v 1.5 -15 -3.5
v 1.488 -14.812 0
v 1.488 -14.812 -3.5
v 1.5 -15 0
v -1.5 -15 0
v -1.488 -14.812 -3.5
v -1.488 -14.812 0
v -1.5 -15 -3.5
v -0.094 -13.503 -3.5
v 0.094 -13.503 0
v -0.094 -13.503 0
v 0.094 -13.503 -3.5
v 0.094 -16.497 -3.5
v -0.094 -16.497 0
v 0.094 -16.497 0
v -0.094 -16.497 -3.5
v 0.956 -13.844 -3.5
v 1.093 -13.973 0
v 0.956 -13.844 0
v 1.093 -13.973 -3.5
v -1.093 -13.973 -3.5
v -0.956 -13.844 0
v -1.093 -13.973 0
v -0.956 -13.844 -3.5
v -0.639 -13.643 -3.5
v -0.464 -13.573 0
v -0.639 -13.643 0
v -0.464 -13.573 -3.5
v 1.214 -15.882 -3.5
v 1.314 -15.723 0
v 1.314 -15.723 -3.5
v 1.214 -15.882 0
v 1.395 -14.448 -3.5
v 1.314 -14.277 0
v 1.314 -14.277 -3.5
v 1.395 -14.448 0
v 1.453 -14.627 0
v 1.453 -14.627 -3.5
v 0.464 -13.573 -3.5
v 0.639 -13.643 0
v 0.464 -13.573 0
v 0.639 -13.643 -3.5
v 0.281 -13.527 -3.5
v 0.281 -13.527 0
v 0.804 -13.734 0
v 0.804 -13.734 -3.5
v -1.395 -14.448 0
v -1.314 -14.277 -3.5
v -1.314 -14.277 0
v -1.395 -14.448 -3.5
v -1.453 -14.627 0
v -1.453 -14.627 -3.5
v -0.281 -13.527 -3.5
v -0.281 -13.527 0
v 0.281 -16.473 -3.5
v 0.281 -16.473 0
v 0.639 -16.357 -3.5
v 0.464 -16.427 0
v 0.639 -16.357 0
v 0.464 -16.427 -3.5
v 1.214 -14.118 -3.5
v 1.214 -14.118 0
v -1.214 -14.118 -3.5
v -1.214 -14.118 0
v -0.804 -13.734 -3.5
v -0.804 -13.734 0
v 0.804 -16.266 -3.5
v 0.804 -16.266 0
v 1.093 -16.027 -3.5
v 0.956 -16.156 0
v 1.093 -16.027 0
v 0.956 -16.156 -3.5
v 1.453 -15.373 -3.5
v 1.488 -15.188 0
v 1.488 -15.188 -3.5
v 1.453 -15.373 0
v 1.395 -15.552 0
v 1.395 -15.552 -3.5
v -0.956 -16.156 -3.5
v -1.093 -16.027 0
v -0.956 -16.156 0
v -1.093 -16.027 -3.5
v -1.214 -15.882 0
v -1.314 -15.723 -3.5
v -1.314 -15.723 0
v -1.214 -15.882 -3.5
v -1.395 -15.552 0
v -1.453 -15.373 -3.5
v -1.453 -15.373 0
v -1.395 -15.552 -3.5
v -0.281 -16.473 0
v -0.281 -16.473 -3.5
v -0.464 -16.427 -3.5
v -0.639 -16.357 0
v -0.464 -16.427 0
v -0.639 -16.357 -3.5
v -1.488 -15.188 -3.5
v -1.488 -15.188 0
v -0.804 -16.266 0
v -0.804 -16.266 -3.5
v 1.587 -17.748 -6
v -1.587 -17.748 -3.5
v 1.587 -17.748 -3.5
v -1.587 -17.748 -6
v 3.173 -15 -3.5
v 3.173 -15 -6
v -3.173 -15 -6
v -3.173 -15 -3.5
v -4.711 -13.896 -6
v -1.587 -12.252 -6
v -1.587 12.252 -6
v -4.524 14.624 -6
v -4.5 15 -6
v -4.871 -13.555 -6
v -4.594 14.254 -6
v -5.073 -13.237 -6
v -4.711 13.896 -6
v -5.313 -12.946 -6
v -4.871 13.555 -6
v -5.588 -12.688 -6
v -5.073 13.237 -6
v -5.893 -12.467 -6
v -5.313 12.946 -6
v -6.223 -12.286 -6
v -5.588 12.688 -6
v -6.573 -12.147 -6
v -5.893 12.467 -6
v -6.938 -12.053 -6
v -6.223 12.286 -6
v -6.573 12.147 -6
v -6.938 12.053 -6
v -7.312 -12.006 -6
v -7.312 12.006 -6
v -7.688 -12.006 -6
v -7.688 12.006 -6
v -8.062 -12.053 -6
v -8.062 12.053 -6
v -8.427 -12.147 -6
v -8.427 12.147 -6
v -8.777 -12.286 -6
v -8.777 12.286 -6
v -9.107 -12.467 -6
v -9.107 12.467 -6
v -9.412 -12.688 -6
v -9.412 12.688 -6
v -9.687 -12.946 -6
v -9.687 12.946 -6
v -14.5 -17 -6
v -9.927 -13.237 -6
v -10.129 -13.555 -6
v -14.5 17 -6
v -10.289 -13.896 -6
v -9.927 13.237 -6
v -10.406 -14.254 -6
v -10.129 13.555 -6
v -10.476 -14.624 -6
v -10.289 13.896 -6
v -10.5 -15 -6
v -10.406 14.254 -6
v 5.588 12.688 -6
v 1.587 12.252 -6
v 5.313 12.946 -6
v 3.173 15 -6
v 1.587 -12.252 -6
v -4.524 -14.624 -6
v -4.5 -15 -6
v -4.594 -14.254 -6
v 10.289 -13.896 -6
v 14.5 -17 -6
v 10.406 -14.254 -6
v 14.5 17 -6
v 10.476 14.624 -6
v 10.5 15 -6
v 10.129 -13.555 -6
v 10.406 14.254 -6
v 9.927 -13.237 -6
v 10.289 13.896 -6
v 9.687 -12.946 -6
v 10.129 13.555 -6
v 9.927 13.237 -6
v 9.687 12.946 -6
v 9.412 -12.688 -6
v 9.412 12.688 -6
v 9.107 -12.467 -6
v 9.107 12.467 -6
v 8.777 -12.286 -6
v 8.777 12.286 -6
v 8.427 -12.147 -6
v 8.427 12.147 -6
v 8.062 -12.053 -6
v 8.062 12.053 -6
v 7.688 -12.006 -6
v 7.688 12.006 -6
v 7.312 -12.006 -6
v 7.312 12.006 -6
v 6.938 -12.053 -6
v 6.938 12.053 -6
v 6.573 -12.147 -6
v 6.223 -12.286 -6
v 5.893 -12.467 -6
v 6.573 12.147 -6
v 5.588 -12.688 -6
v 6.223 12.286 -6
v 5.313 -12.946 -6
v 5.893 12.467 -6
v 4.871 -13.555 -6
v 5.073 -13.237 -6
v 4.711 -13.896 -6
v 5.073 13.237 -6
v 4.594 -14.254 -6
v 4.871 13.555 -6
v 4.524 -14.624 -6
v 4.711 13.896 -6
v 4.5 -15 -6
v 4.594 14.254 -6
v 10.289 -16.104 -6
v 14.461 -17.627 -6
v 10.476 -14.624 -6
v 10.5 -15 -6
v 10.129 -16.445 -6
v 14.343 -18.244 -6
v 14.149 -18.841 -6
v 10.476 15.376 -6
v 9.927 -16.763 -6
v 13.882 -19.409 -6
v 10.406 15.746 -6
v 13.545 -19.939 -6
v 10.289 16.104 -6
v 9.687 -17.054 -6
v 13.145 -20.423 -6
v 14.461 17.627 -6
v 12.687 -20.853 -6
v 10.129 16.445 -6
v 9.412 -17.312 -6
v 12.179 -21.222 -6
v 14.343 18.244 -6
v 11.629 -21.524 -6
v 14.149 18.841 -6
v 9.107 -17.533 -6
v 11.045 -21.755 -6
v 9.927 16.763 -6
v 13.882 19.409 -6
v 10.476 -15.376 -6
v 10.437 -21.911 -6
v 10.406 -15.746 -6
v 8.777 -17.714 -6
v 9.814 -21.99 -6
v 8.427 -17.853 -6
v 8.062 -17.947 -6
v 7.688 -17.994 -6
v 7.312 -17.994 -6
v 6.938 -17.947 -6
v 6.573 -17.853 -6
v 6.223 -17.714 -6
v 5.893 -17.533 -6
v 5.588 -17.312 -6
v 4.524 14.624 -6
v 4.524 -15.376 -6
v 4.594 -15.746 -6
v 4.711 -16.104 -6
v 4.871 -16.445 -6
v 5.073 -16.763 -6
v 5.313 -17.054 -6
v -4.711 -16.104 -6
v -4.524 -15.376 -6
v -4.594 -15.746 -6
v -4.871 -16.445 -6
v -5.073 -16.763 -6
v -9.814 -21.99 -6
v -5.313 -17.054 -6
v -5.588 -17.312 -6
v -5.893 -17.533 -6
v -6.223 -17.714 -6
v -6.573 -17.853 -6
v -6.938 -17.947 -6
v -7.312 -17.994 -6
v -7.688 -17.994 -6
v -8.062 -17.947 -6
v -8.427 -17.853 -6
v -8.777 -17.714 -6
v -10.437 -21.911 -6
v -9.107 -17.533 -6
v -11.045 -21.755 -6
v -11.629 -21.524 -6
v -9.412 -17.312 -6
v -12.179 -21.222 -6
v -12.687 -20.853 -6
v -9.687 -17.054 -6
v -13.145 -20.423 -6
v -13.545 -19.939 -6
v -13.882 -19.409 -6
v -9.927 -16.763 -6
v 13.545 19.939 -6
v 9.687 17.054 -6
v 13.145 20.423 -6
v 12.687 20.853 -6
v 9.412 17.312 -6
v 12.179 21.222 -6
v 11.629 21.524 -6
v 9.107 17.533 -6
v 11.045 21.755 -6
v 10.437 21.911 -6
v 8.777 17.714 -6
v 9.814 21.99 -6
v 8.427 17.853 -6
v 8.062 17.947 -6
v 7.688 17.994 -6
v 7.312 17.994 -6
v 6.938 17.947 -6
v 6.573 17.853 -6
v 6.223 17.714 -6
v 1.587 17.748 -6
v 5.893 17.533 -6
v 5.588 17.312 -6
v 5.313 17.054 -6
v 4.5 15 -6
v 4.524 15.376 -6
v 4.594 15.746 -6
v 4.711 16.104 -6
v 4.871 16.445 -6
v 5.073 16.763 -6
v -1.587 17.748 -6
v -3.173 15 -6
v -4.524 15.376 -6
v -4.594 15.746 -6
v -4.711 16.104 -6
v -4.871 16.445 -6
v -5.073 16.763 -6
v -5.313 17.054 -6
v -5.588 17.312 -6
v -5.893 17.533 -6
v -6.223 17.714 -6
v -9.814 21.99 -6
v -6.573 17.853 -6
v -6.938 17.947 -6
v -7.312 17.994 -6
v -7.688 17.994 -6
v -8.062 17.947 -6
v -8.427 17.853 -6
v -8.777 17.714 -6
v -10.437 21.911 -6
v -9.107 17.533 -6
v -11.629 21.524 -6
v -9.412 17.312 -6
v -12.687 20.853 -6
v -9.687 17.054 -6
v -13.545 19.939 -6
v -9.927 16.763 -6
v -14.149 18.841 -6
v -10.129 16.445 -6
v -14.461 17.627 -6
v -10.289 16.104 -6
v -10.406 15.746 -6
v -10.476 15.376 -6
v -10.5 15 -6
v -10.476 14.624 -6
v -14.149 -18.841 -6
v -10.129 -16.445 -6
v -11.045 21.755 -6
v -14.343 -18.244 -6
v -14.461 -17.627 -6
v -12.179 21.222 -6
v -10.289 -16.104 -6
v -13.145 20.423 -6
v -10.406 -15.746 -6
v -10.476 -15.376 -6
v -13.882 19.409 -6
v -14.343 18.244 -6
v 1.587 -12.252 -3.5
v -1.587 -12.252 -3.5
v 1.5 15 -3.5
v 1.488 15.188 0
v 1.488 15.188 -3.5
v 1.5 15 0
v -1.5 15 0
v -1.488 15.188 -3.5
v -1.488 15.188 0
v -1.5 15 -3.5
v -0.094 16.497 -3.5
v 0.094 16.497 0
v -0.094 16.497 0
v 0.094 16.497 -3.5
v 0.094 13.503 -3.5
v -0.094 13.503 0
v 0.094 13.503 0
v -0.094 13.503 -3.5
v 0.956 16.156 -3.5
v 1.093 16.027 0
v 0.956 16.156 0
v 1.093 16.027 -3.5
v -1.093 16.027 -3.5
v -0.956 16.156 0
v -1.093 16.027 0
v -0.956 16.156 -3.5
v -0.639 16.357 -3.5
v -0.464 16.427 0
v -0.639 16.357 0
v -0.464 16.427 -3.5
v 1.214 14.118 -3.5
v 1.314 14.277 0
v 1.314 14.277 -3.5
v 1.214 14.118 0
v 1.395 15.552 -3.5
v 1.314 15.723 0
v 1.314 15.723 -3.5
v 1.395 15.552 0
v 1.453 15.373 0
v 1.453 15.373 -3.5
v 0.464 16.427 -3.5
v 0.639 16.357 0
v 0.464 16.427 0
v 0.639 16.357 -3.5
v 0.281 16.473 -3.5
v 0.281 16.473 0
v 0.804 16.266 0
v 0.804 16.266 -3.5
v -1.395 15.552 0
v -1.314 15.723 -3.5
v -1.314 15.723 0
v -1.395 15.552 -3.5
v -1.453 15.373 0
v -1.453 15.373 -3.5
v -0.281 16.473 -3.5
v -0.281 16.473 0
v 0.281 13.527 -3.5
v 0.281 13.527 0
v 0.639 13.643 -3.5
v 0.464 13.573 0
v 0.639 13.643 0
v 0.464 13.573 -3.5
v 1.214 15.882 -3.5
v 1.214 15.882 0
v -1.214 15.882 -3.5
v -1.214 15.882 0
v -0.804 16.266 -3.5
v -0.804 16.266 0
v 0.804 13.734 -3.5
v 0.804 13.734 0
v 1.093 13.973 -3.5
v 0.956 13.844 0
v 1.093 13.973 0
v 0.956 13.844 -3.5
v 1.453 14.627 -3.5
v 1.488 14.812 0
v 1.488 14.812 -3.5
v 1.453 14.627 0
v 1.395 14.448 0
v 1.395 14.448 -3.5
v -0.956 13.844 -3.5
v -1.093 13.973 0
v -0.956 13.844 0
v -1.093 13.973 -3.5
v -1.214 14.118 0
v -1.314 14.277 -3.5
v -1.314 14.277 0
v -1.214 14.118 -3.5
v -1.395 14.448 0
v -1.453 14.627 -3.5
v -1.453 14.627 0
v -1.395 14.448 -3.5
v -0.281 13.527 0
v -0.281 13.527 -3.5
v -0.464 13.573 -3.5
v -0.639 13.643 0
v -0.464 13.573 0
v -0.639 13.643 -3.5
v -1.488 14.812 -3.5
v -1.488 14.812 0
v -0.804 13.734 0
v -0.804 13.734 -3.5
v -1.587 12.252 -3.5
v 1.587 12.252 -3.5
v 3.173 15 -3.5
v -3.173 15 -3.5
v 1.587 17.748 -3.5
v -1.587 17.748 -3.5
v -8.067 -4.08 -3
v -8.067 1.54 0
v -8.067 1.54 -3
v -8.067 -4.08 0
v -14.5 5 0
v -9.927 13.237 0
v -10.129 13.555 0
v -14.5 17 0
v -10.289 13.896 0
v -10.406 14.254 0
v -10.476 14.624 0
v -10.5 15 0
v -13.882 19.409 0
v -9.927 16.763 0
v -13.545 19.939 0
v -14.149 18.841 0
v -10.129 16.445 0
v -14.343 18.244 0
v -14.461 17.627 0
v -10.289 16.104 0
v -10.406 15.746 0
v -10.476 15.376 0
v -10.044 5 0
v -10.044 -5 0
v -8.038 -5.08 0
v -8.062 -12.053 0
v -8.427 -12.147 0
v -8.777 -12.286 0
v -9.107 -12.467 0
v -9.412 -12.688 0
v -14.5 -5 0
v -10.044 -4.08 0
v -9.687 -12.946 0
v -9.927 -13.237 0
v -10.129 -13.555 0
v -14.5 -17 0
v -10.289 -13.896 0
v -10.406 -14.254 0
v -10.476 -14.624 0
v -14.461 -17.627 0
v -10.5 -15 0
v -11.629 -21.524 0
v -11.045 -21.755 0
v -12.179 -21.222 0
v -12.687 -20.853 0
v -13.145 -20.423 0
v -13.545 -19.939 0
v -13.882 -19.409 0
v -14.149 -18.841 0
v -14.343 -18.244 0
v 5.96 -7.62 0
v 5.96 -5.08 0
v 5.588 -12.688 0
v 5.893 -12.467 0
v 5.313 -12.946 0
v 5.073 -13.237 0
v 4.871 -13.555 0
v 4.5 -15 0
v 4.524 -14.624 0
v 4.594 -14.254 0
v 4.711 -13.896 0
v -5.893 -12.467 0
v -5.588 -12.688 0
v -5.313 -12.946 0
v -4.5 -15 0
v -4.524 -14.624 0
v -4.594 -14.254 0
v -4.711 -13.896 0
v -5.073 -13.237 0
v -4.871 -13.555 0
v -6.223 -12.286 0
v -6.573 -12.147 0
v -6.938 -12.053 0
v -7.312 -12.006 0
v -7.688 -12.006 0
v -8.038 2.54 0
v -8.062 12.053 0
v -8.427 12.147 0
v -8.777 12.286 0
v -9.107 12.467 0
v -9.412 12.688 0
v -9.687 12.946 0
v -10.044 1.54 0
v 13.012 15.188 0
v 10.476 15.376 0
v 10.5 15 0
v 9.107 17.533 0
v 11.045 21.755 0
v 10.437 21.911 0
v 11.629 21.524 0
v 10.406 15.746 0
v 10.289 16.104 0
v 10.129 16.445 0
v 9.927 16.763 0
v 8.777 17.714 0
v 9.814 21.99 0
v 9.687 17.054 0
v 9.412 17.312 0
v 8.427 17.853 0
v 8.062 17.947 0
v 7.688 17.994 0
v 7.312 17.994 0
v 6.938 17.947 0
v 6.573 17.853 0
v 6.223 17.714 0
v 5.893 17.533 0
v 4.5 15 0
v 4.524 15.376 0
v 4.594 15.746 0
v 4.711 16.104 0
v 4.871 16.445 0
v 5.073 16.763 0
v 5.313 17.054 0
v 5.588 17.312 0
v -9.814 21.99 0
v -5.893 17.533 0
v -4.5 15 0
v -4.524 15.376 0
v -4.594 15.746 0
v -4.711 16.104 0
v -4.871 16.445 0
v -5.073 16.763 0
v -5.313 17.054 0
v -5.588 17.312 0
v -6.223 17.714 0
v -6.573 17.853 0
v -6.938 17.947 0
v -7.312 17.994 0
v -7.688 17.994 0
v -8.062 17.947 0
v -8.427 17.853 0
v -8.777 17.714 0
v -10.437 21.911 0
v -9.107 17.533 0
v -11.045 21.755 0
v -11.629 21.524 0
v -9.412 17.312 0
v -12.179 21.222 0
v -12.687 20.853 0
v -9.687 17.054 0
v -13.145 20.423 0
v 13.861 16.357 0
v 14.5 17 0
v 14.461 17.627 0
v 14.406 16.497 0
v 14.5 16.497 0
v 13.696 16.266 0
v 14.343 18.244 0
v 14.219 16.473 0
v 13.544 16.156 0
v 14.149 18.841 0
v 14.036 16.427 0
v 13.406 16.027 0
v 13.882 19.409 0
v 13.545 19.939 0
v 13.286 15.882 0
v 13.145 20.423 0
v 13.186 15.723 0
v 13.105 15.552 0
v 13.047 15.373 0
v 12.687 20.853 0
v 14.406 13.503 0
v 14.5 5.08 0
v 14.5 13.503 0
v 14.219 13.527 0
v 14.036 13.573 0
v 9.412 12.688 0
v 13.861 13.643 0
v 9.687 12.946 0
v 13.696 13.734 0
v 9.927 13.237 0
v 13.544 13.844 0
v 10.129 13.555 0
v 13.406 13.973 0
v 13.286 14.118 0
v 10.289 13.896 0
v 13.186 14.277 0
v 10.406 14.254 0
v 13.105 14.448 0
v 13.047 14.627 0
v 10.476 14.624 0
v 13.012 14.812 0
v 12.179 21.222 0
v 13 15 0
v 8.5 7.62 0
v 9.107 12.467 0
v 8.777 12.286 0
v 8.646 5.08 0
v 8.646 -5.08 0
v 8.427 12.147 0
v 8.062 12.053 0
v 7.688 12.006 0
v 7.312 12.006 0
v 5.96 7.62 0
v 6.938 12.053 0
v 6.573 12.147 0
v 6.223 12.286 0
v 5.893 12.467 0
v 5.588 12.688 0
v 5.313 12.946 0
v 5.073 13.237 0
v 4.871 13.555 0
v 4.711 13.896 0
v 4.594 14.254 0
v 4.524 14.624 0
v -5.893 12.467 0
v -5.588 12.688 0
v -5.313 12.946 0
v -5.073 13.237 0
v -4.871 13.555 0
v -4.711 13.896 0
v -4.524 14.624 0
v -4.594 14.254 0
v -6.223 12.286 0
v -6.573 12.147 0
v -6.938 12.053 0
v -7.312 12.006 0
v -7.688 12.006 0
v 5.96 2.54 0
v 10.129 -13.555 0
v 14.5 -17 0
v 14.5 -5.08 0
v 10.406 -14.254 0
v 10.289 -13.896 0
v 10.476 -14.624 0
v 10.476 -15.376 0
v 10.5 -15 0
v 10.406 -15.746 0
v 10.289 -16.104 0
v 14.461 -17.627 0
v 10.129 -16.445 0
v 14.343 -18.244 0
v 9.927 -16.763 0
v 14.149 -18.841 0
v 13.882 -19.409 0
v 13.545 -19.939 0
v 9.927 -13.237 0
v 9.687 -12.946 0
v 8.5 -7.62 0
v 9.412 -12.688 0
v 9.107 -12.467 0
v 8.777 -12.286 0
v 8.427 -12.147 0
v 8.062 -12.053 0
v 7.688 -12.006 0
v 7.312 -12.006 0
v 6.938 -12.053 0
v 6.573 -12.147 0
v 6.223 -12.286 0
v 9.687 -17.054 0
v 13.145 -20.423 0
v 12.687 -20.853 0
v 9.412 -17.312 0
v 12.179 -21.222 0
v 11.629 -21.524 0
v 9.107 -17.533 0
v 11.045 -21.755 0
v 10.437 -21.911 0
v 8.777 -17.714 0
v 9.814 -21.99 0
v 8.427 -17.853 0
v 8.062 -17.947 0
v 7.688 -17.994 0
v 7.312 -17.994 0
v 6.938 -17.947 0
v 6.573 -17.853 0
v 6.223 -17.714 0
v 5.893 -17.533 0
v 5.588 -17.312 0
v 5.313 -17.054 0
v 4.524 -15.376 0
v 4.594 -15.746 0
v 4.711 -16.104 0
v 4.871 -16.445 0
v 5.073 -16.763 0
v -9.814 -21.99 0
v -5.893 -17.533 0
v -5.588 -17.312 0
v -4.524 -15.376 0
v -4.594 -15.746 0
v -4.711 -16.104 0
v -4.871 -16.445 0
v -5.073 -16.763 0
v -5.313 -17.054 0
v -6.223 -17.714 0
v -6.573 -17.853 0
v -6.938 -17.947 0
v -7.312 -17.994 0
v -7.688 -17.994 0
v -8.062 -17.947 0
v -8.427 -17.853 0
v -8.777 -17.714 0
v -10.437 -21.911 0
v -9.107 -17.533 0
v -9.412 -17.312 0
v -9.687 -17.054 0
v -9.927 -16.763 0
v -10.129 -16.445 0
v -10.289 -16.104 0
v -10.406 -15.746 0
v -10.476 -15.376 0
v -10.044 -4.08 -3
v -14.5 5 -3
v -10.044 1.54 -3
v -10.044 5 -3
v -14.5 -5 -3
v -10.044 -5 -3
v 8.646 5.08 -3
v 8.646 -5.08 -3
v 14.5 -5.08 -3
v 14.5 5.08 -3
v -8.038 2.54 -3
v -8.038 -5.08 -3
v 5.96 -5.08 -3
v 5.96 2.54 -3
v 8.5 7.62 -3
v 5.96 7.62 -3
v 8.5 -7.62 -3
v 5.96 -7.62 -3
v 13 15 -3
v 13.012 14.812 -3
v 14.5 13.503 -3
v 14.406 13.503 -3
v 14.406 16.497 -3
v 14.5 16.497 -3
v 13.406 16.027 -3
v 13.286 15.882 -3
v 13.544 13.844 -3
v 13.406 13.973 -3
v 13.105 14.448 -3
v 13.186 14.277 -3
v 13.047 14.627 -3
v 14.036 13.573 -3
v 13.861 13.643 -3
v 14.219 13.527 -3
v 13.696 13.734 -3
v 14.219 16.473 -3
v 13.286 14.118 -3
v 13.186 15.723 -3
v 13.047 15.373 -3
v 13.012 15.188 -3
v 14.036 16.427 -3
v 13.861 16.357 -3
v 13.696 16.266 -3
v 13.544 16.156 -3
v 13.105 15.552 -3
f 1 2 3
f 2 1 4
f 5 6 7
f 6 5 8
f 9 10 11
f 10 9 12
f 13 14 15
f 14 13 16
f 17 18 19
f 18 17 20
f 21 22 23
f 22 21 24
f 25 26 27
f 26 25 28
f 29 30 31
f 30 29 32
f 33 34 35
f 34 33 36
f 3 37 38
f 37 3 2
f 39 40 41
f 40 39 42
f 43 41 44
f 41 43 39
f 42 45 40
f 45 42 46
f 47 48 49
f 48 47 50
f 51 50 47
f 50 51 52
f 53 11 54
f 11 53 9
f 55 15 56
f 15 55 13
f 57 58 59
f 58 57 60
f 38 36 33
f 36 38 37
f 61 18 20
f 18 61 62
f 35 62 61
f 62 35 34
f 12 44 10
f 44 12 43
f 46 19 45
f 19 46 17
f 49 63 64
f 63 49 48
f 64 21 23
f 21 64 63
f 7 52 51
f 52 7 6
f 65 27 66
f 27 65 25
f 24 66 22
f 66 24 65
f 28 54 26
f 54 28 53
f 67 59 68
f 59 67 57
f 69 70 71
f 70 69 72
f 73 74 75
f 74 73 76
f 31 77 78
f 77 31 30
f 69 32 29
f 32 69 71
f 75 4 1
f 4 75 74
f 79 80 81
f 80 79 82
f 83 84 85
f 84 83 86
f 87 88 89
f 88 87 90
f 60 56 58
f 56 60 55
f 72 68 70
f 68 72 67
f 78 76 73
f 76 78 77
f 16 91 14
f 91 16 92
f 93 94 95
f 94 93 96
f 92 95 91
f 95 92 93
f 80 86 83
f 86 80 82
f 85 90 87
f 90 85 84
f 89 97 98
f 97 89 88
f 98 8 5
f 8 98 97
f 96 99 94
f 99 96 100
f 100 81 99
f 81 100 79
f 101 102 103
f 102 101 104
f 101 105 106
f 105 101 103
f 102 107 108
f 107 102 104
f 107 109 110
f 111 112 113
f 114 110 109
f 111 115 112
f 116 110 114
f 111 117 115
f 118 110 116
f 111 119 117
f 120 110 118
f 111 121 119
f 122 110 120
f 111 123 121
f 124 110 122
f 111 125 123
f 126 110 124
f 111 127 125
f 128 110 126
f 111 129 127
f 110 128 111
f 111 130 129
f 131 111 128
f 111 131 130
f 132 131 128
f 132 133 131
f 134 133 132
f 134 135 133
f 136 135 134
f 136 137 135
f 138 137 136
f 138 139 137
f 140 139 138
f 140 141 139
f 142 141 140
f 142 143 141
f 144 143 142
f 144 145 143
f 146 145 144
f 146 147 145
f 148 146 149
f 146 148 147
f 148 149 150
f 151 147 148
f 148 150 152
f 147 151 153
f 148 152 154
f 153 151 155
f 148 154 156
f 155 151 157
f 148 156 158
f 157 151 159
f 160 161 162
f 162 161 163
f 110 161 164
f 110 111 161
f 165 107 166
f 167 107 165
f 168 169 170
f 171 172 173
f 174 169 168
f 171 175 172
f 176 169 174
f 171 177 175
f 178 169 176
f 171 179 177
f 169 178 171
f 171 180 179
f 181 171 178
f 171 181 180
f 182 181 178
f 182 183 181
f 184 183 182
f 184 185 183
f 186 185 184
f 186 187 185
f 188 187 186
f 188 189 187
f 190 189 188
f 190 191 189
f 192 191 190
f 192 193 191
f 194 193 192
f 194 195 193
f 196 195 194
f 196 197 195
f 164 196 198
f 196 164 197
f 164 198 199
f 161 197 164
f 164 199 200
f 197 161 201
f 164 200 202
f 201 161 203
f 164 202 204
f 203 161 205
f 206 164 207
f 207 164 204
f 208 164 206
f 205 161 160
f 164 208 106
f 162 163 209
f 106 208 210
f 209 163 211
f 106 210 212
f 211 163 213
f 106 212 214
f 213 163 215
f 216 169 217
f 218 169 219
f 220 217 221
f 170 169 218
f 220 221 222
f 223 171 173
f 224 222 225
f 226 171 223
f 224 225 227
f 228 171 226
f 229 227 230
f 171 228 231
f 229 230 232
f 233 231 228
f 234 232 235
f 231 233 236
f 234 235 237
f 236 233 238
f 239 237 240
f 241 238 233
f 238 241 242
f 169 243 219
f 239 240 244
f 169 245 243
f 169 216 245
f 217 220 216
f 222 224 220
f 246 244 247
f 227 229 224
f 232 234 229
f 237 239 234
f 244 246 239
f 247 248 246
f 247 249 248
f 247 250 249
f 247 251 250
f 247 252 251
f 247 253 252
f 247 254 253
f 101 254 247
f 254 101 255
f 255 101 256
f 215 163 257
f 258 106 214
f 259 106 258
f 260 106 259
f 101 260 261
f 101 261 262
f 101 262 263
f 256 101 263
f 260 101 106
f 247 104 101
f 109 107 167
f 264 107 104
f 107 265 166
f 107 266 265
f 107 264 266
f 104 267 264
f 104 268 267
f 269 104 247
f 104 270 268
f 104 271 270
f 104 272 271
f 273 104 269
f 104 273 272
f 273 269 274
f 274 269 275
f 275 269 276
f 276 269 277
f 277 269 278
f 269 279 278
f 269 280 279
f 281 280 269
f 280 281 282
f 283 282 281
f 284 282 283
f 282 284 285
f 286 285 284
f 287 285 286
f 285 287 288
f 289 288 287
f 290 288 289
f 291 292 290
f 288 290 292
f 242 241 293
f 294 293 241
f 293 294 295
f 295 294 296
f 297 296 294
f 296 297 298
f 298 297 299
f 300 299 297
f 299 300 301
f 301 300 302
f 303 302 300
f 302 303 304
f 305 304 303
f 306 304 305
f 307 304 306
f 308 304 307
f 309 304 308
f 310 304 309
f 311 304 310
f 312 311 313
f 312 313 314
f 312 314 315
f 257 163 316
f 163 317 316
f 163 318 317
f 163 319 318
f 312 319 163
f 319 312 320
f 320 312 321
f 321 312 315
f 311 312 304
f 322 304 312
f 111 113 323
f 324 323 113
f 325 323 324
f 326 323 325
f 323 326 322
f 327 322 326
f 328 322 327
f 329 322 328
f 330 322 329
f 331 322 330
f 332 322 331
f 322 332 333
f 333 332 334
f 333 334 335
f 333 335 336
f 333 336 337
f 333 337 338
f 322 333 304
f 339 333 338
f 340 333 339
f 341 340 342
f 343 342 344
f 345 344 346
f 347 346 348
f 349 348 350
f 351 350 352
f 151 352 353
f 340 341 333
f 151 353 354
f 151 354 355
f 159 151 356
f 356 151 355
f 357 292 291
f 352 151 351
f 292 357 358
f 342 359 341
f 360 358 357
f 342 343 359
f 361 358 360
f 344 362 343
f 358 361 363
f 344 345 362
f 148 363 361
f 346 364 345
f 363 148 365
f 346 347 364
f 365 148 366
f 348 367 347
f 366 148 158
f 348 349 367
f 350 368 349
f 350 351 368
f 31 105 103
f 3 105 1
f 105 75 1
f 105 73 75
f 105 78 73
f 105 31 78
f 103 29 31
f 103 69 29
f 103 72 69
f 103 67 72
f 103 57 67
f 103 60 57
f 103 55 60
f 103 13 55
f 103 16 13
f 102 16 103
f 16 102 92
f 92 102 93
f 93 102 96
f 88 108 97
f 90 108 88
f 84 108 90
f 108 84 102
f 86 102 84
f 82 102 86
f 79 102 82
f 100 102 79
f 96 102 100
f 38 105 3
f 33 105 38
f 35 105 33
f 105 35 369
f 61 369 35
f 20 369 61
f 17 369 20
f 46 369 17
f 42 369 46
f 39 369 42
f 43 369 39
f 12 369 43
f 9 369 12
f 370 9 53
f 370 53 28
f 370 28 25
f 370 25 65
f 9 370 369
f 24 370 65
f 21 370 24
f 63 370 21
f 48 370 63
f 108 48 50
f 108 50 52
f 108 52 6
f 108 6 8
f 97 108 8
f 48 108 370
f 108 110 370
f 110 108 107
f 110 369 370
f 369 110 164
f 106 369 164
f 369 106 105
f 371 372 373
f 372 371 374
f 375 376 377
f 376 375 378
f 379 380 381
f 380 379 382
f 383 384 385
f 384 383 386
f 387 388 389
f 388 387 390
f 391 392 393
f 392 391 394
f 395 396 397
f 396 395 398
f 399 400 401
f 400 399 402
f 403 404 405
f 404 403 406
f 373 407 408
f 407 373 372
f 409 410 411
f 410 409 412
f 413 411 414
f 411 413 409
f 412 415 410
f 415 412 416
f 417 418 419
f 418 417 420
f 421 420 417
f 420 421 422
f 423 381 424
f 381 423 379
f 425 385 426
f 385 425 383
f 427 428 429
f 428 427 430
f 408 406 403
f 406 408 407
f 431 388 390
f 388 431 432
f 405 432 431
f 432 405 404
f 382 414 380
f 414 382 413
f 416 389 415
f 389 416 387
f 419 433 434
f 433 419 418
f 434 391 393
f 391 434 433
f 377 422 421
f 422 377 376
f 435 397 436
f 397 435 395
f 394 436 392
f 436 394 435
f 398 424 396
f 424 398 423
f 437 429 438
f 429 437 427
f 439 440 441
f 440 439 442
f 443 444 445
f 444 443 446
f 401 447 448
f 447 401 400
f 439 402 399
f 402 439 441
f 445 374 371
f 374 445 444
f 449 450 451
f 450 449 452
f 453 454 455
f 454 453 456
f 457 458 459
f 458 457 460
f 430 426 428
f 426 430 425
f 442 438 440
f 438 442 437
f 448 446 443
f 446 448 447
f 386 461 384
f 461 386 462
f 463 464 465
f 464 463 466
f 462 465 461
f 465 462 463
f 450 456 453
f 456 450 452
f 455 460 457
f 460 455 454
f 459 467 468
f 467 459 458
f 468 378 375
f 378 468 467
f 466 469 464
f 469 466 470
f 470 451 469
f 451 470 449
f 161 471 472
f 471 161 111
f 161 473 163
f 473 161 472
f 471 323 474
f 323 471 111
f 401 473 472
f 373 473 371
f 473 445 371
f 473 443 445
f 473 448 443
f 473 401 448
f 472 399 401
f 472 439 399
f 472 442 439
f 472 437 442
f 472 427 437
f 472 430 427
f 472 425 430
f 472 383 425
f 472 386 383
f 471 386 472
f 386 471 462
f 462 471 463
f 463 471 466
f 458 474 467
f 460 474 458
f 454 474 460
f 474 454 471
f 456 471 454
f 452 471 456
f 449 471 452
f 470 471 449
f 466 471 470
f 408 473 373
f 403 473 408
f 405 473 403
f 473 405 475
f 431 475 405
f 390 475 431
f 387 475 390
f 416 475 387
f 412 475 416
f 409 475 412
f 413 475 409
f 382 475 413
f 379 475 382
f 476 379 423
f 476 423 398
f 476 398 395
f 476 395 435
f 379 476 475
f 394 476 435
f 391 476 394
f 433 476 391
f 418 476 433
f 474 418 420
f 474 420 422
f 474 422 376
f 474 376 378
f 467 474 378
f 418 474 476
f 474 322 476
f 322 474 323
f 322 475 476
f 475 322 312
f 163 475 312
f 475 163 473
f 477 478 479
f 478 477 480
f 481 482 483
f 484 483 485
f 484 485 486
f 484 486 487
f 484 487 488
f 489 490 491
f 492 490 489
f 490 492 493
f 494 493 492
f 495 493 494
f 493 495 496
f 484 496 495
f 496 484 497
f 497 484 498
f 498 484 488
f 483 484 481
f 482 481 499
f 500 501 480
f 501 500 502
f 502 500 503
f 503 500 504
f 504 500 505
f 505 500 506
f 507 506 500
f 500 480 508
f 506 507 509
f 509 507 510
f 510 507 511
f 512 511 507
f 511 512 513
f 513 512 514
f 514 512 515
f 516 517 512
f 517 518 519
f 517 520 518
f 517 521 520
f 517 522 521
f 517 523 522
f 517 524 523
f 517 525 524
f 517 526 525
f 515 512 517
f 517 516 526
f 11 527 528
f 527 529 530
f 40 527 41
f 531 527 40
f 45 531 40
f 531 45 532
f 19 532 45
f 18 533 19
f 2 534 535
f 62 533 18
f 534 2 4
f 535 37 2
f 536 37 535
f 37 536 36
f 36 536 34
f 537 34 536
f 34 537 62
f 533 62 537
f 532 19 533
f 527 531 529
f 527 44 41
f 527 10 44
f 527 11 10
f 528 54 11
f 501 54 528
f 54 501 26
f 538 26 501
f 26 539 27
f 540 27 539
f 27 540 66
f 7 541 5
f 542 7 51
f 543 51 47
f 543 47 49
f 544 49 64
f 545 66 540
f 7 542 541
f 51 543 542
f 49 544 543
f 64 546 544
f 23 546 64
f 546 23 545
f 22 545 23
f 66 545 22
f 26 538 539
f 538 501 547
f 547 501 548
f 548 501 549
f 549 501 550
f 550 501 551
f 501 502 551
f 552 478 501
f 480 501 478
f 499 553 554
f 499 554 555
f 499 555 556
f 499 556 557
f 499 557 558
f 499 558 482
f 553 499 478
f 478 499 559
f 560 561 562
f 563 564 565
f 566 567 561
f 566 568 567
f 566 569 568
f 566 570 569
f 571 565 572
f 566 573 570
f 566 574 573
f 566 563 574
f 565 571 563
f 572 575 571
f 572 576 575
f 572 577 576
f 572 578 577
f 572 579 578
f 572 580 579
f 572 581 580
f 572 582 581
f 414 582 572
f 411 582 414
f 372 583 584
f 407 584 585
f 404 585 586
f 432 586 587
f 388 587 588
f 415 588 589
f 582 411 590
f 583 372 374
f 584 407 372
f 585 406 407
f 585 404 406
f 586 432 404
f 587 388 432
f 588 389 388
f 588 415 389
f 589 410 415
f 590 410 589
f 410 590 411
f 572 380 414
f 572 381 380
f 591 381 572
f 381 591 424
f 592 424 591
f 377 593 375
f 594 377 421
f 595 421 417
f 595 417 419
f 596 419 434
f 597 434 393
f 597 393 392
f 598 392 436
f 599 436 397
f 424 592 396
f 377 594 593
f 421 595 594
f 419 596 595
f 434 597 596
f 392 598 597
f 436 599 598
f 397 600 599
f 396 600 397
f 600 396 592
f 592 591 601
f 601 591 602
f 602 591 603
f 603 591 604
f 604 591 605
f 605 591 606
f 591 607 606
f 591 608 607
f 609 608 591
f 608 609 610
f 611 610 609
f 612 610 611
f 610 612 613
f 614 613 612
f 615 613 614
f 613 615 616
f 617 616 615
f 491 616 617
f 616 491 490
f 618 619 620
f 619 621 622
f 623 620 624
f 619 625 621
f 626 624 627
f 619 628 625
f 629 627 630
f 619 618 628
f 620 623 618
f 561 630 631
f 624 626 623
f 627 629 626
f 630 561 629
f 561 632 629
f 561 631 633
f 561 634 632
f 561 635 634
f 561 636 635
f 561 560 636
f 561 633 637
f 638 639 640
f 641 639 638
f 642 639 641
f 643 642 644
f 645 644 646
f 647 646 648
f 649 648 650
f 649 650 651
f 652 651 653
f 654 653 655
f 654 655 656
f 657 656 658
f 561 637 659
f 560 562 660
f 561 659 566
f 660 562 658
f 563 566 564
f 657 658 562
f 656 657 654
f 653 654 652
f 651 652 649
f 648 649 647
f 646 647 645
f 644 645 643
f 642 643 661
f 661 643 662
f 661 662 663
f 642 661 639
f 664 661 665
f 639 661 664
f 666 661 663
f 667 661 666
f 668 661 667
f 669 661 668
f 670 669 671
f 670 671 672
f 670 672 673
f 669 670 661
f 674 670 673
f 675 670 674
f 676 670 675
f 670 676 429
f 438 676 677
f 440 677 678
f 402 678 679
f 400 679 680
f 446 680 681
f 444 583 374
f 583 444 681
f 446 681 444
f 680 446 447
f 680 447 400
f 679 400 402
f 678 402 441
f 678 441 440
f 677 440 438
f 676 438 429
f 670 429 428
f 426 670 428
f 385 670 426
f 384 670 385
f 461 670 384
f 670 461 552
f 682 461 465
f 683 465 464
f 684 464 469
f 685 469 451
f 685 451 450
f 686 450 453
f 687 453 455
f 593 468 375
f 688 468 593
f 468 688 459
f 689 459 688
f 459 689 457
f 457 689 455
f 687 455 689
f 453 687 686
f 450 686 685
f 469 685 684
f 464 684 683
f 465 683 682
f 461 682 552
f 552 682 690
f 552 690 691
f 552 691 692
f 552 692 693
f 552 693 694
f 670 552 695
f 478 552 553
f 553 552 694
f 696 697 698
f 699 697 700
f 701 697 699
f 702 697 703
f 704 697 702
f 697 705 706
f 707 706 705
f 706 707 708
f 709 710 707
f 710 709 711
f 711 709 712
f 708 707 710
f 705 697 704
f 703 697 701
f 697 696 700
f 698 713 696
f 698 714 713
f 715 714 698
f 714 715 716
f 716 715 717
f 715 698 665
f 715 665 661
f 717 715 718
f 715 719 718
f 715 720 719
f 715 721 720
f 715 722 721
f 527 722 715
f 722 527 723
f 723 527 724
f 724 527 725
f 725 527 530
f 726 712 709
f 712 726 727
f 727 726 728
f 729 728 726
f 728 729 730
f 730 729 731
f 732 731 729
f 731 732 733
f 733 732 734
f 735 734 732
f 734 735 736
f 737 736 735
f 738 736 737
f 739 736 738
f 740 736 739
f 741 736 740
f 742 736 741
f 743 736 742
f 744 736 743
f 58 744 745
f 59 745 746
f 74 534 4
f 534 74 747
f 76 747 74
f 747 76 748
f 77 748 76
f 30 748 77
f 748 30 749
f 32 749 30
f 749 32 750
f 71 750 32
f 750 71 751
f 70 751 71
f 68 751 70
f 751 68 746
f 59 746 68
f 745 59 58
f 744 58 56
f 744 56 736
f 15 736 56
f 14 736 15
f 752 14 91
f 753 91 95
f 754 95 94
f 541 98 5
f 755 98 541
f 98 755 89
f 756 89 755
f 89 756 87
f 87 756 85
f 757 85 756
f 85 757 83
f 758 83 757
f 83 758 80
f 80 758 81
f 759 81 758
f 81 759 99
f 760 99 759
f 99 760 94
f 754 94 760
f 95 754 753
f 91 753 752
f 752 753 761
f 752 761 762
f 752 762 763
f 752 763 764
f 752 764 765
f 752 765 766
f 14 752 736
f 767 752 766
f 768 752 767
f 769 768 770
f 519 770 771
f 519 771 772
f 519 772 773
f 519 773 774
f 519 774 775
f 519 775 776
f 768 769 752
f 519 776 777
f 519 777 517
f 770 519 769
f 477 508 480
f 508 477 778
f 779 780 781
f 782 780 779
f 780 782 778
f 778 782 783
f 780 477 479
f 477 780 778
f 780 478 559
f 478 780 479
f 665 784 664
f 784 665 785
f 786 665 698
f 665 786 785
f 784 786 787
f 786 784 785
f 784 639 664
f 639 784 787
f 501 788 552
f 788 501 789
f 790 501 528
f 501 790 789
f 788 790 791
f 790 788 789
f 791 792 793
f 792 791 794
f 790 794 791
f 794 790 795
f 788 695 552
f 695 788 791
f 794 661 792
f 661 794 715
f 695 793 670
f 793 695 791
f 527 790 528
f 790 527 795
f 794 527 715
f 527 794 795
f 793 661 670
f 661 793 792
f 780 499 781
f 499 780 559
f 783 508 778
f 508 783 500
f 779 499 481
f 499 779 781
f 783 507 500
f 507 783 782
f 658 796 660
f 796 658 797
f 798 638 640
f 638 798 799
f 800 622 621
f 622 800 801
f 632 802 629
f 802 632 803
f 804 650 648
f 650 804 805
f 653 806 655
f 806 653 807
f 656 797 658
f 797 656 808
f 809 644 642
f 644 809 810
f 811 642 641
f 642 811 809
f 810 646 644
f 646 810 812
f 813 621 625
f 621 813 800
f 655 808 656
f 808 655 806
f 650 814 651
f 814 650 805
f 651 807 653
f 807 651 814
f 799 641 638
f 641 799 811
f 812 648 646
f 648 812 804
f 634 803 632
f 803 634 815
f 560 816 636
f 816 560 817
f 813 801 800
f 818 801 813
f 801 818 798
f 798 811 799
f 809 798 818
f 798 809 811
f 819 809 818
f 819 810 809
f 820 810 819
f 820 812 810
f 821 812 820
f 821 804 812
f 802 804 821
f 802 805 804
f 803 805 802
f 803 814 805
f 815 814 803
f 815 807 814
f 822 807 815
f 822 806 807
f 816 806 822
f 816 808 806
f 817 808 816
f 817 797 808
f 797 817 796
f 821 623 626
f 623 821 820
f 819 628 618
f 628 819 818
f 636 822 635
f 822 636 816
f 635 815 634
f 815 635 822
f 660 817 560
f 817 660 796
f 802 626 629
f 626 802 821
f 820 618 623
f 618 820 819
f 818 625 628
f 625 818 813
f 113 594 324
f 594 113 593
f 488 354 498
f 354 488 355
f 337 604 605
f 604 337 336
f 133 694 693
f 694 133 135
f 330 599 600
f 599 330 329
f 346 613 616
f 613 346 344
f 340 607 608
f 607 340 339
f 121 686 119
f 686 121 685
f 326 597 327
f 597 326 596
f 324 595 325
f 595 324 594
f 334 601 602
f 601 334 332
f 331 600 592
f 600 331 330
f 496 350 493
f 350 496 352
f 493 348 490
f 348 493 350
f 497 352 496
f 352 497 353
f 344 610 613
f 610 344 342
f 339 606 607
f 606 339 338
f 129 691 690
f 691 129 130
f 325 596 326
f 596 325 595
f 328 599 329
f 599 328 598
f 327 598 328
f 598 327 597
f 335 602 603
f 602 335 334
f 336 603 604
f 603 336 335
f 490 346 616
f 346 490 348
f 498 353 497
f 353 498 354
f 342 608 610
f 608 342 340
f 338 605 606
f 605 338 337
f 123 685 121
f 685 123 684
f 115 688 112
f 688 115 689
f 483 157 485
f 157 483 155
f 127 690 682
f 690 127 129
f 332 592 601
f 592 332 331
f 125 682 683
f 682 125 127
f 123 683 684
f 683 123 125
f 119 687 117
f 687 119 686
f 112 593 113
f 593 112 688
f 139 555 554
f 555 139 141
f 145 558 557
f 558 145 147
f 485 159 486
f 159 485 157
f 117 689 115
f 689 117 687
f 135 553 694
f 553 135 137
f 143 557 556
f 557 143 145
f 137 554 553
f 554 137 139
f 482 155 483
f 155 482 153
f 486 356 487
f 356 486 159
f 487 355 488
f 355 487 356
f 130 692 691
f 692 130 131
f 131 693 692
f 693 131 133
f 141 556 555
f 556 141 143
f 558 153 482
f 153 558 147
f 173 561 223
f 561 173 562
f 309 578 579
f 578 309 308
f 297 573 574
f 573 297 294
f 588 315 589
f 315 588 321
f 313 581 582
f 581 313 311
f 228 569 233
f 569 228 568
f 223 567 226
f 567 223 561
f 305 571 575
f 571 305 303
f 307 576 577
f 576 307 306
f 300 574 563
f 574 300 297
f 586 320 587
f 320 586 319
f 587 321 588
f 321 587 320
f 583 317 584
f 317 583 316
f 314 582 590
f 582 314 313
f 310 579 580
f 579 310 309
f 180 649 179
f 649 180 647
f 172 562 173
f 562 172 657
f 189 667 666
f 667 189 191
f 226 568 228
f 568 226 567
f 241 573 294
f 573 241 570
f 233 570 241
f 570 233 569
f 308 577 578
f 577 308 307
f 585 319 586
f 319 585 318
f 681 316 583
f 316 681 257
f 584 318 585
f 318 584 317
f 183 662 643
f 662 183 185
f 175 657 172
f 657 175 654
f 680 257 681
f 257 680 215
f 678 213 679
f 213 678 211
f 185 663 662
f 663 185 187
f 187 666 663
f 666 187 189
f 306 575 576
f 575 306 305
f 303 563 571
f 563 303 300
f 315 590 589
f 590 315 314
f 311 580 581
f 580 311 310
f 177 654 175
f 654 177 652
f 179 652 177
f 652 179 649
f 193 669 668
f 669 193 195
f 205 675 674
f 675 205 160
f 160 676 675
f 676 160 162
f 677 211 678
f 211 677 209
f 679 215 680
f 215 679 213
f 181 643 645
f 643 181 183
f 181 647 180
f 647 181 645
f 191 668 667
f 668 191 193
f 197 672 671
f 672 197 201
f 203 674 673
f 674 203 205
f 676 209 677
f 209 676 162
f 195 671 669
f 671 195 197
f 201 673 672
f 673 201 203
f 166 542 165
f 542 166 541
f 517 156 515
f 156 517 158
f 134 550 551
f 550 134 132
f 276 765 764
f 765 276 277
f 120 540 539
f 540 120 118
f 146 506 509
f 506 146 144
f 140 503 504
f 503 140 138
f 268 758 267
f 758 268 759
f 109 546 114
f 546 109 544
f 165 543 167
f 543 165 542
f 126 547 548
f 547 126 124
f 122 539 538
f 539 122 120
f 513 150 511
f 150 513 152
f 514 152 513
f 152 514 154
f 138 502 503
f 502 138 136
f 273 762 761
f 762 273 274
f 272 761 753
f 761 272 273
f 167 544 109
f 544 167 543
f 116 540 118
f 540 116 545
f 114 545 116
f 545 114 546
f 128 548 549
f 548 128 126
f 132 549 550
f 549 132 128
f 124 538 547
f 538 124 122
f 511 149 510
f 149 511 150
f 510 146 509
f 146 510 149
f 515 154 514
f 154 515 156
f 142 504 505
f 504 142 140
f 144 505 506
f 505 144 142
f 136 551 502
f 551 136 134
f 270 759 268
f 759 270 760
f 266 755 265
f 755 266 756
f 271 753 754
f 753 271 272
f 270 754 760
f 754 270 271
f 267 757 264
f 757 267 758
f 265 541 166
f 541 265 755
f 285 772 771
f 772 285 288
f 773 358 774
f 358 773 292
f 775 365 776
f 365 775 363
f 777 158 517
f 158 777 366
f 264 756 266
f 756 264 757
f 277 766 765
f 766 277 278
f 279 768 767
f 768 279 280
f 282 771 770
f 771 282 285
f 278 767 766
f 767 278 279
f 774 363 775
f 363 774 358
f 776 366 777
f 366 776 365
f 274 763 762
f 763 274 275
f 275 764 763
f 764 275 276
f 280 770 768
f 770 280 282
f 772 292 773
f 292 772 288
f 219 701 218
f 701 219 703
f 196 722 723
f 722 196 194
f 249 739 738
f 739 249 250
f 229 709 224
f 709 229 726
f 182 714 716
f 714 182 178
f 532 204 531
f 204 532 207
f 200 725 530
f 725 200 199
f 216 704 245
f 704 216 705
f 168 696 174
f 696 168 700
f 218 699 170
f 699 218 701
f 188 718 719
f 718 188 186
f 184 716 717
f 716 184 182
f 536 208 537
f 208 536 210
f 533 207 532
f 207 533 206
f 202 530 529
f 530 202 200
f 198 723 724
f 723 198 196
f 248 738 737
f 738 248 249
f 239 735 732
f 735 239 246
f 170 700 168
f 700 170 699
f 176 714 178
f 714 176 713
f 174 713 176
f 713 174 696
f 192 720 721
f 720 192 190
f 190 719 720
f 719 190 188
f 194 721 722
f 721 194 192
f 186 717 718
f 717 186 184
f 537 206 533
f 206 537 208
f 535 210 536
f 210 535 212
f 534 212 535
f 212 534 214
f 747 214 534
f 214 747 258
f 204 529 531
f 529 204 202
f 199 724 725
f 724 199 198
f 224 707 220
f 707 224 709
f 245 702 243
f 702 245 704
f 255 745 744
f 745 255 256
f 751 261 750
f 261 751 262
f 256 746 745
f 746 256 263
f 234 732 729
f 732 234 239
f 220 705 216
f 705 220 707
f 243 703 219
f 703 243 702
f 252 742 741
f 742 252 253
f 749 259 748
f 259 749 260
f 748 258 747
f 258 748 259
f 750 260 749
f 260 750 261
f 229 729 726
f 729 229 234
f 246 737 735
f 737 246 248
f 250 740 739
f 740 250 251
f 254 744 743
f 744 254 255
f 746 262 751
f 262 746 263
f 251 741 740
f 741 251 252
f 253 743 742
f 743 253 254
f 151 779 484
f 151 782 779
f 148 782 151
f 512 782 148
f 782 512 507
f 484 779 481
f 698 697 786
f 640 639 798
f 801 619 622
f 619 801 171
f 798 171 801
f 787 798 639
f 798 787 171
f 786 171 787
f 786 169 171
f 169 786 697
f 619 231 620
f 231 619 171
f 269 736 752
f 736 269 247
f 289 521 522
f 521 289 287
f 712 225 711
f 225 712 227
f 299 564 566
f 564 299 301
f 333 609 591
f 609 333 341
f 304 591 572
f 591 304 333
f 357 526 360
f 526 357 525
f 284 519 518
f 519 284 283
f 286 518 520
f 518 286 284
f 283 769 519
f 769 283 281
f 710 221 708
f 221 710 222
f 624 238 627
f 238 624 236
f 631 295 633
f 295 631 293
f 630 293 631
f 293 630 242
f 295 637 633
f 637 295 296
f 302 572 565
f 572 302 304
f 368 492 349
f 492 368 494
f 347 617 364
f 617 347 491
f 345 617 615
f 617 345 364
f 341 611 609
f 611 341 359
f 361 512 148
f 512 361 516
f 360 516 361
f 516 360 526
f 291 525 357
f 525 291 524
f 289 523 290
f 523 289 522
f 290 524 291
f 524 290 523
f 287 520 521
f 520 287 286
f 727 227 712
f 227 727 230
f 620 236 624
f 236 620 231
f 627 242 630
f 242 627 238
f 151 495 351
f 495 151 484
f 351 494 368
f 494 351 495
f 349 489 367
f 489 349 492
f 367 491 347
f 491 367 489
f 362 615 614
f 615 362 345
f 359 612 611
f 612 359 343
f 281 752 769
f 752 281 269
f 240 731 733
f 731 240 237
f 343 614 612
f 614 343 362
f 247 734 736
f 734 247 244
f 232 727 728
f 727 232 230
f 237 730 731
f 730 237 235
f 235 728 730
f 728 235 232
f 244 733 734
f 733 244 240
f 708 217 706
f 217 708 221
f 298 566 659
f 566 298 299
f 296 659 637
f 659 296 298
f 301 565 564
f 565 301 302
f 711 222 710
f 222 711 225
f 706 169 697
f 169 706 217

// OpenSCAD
$fn = 50;


difference() {
	union() {
		translate(v = [0, 0, -6]) {
			hull() {
				translate(v = [-9.5000000000, 17.0000000000, 0]) {
					cylinder(h = 6, r = 5);
				}
				translate(v = [9.5000000000, 17.0000000000, 0]) {
					cylinder(h = 6, r = 5);
				}
				translate(v = [-9.5000000000, -17.0000000000, 0]) {
					cylinder(h = 6, r = 5);
				}
				translate(v = [9.5000000000, -17.0000000000, 0]) {
					cylinder(h = 6, r = 5);
				}
			}
		}
	}
	union() {
		translate(v = [0, -15, -6]) {
			rotate(a = [0, 0, 0]) {
				difference() {
					union() {
						translate(v = [0, 0, -50.0000000000]) {
							cylinder(h = 100, r = 1.5000000000);
						}
						translate(v = [0, 0, -50.0000000000]) {
							cylinder(h = 100, r = 1.5000000000);
						}
						linear_extrude(height = 2.5000000000) {
							polygon(points = [[3.1735000000, 0.0000000000], [1.5867500000, 2.7483316189], [-1.5867500000, 2.7483316189], [-3.1735000000, 0.0000000000], [-1.5867500000, -2.7483316189], [1.5867500000, -2.7483316189]]);
						}
						translate(v = [0, 0, -50.0000000000]) {
							cylinder(h = 100, r = 1.5000000000);
						}
					}
					union();
				}
			}
		}
		translate(v = [0, 15, -6]) {
			rotate(a = [0, 0, 0]) {
				difference() {
					union() {
						translate(v = [0, 0, -50.0000000000]) {
							cylinder(h = 100, r = 1.5000000000);
						}
						translate(v = [0, 0, -50.0000000000]) {
							cylinder(h = 100, r = 1.5000000000);
						}
						linear_extrude(height = 2.5000000000) {
							polygon(points = [[3.1735000000, 0.0000000000], [1.5867500000, 2.7483316189], [-1.5867500000, 2.7483316189], [-3.1735000000, 0.0000000000], [-1.5867500000, -2.7483316189], [1.5867500000, -2.7483316189]]);
						}
						translate(v = [0, 0, -50.0000000000]) {
							cylinder(h = 100, r = 1.5000000000);
						}
					}
					union();
				}
			}
		}
		translate(v = [15.0000000000, 0, -3]) {
			rotate(a = [0, 0, 180]) {
				difference() {
					union() {
						#translate(v = [23.0670000000, -1.5400000000, 0]) {
							cube(size = [5, 5.6200000000, 3]);
						}
						#translate(v = [0.3540000000, -5.0800000000, 0]) {
							cube(size = [6, 10.1600000000, 3]);
						}
						#translate(v = [9.0380000000, -2.5400000000, 0]) {
							cube(size = [14, 7.6200000000, 3]);
						}
						#translate(v = [6.5000000000, -7.6200000000, 0]) {
							cube(size = [2.5400000000, 15.2400000000, 3]);
						}
						#translate(v = [25.0440000000, -5.0000000000, 0]) {
							cube(size = [7, 10, 3]);
						}
						#translate(v = [0.5000000000, -15, 0.0000000000]) {
							cylinder(h = 3, r = 1.5000000000);
						}
					}
					union();
				}
			}
		}
		translate(v = [-7.5000000000, 15.0000000000, -50.0000000000]) {
			cylinder(h = 100, r = 3.0000000000);
		}
		translate(v = [7.5000000000, 15.0000000000, -50.0000000000]) {
			cylinder(h = 100, r = 3.0000000000);
		}
		translate(v = [-7.5000000000, -15.0000000000, -50.0000000000]) {
			cylinder(h = 100, r = 3.0000000000);
		}
		translate(v = [7.5000000000, -15.0000000000, -50.0000000000]) {
			cylinder(h = 100, r = 3.0000000000);
		}
	}
}
